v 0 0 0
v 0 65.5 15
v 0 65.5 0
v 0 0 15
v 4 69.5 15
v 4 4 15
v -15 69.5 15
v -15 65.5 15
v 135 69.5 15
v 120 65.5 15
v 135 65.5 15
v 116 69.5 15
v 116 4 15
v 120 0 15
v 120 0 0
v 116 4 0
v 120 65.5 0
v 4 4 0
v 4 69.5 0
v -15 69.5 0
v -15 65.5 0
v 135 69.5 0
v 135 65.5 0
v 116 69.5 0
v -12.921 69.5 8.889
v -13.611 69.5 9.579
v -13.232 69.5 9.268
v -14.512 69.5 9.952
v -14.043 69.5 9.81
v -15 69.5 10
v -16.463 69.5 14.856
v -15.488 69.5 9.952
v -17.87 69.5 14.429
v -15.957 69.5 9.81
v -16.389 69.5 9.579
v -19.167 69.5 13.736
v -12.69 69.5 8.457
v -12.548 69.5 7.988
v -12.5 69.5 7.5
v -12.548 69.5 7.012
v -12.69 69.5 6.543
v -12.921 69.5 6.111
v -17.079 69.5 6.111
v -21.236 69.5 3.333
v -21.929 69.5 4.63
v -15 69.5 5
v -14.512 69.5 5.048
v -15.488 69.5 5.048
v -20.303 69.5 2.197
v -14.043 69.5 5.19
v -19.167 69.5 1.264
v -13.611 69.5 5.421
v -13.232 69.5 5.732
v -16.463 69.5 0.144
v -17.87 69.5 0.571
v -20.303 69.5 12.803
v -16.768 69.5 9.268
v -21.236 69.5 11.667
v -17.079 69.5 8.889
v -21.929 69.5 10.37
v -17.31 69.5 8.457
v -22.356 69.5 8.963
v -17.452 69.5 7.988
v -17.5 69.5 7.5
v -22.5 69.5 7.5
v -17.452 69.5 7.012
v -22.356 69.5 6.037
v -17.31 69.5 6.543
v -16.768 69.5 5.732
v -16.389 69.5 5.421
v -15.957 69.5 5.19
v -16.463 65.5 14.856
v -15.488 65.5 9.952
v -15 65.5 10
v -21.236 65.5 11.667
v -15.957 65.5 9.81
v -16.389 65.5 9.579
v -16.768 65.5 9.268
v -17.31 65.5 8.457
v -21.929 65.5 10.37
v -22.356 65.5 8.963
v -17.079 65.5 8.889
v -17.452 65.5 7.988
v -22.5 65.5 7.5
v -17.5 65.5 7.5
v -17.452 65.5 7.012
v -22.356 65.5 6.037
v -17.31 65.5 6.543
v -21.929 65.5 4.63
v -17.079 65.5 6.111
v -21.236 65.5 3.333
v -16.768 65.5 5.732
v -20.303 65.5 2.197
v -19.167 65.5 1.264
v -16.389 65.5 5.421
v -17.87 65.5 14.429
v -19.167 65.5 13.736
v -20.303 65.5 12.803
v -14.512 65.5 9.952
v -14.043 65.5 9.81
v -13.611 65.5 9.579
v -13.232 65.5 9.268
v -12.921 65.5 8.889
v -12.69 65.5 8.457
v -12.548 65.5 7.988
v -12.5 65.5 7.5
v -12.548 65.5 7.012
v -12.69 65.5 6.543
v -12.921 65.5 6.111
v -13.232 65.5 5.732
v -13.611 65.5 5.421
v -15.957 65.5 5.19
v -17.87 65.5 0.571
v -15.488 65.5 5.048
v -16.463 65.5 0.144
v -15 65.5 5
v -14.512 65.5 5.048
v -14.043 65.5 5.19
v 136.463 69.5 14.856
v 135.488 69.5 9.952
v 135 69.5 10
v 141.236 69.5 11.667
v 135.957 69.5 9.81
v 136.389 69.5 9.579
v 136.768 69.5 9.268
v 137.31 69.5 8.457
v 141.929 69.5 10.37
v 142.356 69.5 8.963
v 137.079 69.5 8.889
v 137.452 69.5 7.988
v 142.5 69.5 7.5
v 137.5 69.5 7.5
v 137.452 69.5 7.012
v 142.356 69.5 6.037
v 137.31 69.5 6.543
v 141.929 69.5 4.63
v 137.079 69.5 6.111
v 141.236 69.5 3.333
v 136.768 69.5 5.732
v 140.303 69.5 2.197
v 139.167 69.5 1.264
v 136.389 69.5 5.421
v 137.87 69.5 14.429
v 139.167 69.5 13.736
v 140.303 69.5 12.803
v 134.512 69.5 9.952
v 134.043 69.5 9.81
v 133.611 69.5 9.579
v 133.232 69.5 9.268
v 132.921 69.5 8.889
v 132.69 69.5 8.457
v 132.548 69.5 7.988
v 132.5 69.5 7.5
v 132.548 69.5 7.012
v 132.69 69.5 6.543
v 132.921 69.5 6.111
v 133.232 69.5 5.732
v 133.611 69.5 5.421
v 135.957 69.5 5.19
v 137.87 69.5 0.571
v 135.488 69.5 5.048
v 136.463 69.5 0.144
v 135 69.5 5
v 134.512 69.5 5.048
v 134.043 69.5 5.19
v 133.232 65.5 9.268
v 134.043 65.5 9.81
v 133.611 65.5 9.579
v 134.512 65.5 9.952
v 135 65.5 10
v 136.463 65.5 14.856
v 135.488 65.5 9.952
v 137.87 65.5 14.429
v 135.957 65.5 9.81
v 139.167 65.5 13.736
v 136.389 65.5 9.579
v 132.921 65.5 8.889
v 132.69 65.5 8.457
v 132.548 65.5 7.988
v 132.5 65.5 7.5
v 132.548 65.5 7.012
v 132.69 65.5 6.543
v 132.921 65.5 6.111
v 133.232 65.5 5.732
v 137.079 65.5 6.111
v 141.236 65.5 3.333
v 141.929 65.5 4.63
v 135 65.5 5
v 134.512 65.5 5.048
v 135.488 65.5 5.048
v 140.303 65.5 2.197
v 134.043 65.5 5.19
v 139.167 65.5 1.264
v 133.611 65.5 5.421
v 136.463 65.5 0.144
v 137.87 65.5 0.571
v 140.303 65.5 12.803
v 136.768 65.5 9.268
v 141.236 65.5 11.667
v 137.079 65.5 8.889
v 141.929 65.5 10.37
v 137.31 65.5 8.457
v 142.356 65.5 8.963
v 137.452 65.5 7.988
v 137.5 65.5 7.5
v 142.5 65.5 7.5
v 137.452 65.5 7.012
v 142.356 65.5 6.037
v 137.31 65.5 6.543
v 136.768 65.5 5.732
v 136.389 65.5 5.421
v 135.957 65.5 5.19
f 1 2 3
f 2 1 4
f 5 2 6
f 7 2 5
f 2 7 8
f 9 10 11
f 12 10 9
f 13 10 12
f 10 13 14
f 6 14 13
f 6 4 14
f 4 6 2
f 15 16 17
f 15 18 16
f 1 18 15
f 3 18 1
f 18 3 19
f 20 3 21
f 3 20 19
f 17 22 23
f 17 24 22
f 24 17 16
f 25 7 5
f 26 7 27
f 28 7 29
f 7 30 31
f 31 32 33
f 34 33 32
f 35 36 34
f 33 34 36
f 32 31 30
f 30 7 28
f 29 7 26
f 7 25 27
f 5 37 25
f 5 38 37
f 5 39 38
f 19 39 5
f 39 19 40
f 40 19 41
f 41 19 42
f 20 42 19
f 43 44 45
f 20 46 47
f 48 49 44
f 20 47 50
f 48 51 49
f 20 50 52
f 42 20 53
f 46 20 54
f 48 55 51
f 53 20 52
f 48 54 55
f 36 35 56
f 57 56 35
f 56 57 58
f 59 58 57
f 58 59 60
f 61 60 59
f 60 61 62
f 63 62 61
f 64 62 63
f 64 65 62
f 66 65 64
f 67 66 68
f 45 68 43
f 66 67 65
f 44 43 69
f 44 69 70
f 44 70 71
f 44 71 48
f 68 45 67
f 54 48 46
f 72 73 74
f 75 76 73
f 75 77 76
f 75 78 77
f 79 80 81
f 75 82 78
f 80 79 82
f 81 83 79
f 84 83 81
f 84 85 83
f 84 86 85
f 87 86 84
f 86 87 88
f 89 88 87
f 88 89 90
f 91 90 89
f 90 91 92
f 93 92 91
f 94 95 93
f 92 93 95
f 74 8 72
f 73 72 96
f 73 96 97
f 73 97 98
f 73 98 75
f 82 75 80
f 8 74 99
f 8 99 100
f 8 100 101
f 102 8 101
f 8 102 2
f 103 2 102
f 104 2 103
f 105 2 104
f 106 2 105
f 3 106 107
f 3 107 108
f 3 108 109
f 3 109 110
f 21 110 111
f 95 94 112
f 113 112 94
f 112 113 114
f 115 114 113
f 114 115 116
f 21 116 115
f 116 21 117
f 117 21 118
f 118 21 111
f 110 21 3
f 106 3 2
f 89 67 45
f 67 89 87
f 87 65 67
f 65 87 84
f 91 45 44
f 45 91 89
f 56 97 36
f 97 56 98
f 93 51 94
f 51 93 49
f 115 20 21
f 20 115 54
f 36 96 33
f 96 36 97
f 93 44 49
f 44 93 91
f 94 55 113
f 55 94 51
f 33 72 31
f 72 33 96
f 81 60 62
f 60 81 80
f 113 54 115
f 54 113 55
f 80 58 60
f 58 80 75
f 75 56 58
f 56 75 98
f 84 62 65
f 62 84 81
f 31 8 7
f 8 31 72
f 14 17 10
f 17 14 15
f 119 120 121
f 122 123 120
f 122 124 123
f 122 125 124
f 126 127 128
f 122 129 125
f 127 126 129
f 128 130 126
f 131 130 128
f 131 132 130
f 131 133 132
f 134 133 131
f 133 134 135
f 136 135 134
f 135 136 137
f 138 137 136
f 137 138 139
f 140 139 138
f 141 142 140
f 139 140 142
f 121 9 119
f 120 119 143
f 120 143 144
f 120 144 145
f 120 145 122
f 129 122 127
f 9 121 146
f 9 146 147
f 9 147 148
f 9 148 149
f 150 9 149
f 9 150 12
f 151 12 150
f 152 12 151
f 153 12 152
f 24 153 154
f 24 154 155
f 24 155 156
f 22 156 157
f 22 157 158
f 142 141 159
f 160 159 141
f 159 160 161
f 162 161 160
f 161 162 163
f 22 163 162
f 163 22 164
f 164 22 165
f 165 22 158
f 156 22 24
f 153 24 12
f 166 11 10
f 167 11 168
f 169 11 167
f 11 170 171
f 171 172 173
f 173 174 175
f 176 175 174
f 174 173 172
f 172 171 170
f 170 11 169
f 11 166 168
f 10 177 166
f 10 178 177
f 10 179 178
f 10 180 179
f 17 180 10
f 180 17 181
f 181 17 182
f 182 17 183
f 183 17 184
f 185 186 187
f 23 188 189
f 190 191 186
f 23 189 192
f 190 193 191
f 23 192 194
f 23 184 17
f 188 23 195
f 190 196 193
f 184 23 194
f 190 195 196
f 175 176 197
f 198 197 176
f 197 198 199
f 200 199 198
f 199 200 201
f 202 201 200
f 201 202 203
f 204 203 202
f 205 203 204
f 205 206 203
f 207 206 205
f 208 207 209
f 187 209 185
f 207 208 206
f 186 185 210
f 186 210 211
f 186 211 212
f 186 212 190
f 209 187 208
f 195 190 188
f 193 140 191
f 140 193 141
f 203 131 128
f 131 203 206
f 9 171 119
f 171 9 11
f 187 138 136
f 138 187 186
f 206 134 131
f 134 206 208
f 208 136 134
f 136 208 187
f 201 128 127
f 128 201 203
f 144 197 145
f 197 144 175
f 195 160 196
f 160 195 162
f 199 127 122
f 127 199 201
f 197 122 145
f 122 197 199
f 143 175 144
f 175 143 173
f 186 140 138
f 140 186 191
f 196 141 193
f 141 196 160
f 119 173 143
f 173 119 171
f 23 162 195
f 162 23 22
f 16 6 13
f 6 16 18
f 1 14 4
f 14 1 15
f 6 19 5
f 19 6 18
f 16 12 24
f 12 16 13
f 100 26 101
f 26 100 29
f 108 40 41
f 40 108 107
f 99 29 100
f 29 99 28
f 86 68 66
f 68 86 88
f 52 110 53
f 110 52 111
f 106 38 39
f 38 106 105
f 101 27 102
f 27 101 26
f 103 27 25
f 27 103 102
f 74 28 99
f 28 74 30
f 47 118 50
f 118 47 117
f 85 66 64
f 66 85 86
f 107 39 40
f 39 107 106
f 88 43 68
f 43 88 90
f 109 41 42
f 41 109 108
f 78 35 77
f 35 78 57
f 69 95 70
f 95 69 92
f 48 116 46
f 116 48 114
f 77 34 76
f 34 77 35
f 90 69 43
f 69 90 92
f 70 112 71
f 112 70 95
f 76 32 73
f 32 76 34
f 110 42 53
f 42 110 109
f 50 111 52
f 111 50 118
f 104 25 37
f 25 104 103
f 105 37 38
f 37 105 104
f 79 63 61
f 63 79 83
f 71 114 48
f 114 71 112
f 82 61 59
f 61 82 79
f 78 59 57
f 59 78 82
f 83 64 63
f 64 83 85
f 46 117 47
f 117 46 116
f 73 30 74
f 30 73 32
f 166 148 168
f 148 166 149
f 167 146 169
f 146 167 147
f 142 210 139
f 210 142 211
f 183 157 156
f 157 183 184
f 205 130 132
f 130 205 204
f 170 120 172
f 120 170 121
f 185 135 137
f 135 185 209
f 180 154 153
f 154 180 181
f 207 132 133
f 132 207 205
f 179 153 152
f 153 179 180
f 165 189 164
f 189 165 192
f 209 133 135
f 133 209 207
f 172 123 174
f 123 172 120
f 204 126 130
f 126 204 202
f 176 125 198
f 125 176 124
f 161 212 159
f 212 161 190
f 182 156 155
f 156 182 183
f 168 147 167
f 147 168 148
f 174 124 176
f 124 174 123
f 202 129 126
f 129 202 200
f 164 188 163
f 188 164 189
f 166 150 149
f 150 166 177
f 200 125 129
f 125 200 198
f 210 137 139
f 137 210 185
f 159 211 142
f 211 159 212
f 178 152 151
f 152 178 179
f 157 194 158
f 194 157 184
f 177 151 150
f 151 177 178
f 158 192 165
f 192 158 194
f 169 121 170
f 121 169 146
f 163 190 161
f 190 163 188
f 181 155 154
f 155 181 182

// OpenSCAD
/*
* This work is licensed under a Creative Commons Attribution-NonCommercial-ShareAlike 4.0 International License.
* http://creativecommons.org/licenses/by-nc-sa/4.0/
*
* Author: Isaac Foraker
*/

$fn=32;
height = 65.5; // mm
width = 112; // mm
w2 = 15;
t = 4;

module part1() {
    cube([width+t*2, t, w2]);
    translate([0,t,0])
        cube([t, height, w2]);
    translate([width+t,t,0])
        cube([t, height, w2]);
    translate([-15, height, 0]) {
        cube([15, t, w2]);
        translate([0, 0, w2/2]) rotate([-90,0,0])
            cylinder(r=w2/2, h=t);
    }
    translate([width+t*2, height, 0]) {
        cube([15, t, w2]);
        translate([15, 0, w2/2]) rotate([-90,0,0])
            cylinder(r=w2/2, h=t);
    }
}

module part2() {
    difference() {
        part1();
        translate([-15, height-1, w2/2]) rotate([-90,0,0])
            cylinder(r=2.5, h=t+2);
        translate([width+t*2+15, height-1, w2/2]) rotate([-90,0,0])
            cylinder(r=2.5, h=t+2);
    }
}

part2();
